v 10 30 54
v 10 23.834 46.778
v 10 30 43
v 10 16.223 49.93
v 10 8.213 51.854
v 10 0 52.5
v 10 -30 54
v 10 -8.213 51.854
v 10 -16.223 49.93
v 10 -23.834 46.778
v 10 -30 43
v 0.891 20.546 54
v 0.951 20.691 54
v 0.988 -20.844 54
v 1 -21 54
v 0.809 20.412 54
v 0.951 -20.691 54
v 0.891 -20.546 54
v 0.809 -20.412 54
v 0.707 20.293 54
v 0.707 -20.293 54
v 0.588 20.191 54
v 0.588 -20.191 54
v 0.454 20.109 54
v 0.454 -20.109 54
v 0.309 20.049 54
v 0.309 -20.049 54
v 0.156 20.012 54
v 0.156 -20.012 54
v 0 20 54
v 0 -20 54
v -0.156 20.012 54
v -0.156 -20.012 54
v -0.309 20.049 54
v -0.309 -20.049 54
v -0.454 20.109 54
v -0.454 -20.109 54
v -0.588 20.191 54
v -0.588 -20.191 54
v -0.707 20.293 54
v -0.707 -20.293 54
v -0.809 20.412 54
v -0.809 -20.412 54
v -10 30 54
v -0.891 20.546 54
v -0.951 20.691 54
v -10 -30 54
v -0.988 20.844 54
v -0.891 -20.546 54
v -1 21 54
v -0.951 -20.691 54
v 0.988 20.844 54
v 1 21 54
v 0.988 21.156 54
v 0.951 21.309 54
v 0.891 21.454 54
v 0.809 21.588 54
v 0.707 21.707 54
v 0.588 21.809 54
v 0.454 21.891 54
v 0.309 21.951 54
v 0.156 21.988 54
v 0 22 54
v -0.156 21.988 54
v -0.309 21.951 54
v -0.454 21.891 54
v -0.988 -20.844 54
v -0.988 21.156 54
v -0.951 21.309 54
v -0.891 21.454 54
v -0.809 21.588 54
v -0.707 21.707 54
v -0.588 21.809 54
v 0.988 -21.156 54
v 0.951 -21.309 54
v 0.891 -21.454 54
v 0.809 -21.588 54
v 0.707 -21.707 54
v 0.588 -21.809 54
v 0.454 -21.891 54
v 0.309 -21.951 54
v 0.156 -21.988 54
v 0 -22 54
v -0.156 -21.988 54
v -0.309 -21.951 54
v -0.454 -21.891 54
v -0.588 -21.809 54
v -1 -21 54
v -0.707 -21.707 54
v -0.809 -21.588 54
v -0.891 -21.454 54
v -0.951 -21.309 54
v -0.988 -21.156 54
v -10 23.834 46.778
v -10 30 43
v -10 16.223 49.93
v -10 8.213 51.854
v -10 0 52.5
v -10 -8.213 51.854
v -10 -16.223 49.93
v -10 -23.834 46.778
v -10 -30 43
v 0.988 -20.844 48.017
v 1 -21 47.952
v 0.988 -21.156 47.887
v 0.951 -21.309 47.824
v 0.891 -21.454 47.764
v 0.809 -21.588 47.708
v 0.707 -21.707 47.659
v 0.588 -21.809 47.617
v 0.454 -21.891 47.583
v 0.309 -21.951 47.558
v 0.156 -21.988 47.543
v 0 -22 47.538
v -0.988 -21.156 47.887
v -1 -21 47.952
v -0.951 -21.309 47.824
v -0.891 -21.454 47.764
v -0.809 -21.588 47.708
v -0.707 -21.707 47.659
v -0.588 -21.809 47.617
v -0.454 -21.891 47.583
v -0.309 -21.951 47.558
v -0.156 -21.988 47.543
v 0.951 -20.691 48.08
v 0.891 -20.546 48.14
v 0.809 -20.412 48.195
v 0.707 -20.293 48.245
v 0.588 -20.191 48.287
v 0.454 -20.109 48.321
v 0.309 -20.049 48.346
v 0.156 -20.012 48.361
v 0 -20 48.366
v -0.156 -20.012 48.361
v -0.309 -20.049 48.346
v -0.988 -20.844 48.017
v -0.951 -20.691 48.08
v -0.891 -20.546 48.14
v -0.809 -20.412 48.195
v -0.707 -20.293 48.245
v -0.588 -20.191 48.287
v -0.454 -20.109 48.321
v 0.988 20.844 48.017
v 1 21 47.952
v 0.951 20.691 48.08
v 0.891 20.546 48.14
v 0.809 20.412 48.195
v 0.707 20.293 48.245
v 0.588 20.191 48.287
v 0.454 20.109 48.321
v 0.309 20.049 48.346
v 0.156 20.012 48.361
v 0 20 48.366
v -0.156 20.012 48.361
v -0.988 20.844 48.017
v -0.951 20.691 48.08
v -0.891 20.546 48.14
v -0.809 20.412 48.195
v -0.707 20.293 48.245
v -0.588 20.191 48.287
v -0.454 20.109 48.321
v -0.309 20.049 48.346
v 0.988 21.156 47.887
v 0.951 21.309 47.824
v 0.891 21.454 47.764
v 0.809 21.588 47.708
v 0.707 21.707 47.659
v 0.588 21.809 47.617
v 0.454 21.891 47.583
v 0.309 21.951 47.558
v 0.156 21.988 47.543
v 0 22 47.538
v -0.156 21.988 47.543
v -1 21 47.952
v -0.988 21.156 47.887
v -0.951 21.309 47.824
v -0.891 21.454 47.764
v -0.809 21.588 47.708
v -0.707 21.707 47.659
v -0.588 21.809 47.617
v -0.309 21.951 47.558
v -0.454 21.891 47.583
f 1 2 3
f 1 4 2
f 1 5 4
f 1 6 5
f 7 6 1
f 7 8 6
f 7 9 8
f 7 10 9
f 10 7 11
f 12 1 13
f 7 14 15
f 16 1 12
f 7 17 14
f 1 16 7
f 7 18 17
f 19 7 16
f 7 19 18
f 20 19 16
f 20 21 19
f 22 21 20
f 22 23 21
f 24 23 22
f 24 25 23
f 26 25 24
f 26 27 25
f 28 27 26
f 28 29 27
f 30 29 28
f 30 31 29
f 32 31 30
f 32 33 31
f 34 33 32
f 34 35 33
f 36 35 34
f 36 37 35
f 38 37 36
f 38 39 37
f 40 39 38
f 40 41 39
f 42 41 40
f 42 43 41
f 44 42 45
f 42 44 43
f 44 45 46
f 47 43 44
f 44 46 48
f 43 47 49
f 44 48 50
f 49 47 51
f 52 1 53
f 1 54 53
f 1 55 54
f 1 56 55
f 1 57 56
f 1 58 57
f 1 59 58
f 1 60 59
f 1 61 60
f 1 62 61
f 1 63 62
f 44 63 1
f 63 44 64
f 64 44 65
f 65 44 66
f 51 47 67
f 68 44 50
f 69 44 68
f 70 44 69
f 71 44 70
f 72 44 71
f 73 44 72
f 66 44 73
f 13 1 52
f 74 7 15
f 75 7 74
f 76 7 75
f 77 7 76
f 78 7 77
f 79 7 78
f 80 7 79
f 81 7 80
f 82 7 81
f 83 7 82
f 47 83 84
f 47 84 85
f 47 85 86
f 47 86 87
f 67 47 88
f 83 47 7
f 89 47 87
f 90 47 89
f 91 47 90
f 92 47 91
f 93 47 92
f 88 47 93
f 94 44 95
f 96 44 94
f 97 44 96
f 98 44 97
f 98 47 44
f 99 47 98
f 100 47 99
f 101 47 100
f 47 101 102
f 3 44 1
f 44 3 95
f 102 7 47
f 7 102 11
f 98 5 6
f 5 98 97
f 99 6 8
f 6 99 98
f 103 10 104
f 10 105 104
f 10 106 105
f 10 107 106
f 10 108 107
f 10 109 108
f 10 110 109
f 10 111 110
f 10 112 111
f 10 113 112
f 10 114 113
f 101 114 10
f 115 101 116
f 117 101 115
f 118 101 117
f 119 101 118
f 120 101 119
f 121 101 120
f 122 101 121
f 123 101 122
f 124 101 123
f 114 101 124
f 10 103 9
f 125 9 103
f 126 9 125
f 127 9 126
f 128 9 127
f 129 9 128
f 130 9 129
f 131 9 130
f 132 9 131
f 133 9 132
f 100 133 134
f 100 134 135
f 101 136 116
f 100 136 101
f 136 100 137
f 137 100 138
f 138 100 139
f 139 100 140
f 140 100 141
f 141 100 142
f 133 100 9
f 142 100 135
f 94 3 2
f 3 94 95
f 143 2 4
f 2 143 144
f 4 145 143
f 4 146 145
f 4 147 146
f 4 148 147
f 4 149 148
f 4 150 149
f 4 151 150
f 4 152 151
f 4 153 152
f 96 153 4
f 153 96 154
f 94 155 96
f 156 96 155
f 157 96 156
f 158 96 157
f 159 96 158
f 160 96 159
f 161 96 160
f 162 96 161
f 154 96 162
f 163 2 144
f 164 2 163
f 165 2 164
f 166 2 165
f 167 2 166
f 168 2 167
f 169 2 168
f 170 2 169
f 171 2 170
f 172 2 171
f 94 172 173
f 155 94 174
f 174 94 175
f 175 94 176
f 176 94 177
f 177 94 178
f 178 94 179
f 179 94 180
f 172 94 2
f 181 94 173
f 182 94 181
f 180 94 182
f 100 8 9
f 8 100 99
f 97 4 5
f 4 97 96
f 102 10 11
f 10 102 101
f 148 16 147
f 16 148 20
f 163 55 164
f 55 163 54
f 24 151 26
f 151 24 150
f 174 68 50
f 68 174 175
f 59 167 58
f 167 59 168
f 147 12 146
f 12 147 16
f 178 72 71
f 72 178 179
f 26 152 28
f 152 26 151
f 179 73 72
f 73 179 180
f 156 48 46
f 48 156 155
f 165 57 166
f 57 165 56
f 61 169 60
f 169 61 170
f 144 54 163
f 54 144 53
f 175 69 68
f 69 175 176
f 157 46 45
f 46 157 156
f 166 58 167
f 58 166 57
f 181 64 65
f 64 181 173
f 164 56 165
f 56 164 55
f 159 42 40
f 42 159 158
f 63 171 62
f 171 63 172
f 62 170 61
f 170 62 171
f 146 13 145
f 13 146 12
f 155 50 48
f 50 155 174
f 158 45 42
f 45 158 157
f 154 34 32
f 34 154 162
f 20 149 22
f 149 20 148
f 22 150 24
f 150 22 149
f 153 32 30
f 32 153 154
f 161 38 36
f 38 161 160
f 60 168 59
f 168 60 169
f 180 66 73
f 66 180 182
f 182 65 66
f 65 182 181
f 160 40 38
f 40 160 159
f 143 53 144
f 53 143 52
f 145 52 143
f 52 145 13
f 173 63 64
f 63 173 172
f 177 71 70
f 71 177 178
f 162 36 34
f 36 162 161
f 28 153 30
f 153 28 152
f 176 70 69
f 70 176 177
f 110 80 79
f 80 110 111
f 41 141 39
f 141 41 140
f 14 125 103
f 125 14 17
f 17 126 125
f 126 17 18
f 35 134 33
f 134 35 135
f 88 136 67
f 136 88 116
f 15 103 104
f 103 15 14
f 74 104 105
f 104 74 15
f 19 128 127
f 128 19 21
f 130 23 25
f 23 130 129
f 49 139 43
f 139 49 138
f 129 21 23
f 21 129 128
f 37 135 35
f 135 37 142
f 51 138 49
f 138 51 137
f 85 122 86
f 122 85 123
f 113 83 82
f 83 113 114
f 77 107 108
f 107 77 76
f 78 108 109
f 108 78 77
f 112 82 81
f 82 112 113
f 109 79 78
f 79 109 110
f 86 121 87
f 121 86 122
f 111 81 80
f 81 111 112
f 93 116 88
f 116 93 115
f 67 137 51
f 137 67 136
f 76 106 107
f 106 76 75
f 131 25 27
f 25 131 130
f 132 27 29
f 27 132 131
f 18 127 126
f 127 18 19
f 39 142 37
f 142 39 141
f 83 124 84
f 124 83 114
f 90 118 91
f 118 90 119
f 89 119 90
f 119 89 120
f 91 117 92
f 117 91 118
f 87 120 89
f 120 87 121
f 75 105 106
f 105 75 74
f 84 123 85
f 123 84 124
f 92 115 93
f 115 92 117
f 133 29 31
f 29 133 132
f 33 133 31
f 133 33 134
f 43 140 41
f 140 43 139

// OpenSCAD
    difference() {
        
        
        union() {
            // Montageplaat
            translate([-20/2, -60/2, 40])
                cube([20, 60, 14]);



        }    
            translate([0, 0, 0])
            rotate([0, 90, 0]) 
                cylinder(h=1000, d=105, center=true, $fn=40);
            translate([0, 21, 0])
            rotate([0, 0, 0]) 
                cylinder(h=1000, d=2, center=true, $fn=40);
            translate([0, -21, 0])
            rotate([0, 0, 0]) 
                cylinder(h=1000, d=2, center=true, $fn=40);


        

    }
